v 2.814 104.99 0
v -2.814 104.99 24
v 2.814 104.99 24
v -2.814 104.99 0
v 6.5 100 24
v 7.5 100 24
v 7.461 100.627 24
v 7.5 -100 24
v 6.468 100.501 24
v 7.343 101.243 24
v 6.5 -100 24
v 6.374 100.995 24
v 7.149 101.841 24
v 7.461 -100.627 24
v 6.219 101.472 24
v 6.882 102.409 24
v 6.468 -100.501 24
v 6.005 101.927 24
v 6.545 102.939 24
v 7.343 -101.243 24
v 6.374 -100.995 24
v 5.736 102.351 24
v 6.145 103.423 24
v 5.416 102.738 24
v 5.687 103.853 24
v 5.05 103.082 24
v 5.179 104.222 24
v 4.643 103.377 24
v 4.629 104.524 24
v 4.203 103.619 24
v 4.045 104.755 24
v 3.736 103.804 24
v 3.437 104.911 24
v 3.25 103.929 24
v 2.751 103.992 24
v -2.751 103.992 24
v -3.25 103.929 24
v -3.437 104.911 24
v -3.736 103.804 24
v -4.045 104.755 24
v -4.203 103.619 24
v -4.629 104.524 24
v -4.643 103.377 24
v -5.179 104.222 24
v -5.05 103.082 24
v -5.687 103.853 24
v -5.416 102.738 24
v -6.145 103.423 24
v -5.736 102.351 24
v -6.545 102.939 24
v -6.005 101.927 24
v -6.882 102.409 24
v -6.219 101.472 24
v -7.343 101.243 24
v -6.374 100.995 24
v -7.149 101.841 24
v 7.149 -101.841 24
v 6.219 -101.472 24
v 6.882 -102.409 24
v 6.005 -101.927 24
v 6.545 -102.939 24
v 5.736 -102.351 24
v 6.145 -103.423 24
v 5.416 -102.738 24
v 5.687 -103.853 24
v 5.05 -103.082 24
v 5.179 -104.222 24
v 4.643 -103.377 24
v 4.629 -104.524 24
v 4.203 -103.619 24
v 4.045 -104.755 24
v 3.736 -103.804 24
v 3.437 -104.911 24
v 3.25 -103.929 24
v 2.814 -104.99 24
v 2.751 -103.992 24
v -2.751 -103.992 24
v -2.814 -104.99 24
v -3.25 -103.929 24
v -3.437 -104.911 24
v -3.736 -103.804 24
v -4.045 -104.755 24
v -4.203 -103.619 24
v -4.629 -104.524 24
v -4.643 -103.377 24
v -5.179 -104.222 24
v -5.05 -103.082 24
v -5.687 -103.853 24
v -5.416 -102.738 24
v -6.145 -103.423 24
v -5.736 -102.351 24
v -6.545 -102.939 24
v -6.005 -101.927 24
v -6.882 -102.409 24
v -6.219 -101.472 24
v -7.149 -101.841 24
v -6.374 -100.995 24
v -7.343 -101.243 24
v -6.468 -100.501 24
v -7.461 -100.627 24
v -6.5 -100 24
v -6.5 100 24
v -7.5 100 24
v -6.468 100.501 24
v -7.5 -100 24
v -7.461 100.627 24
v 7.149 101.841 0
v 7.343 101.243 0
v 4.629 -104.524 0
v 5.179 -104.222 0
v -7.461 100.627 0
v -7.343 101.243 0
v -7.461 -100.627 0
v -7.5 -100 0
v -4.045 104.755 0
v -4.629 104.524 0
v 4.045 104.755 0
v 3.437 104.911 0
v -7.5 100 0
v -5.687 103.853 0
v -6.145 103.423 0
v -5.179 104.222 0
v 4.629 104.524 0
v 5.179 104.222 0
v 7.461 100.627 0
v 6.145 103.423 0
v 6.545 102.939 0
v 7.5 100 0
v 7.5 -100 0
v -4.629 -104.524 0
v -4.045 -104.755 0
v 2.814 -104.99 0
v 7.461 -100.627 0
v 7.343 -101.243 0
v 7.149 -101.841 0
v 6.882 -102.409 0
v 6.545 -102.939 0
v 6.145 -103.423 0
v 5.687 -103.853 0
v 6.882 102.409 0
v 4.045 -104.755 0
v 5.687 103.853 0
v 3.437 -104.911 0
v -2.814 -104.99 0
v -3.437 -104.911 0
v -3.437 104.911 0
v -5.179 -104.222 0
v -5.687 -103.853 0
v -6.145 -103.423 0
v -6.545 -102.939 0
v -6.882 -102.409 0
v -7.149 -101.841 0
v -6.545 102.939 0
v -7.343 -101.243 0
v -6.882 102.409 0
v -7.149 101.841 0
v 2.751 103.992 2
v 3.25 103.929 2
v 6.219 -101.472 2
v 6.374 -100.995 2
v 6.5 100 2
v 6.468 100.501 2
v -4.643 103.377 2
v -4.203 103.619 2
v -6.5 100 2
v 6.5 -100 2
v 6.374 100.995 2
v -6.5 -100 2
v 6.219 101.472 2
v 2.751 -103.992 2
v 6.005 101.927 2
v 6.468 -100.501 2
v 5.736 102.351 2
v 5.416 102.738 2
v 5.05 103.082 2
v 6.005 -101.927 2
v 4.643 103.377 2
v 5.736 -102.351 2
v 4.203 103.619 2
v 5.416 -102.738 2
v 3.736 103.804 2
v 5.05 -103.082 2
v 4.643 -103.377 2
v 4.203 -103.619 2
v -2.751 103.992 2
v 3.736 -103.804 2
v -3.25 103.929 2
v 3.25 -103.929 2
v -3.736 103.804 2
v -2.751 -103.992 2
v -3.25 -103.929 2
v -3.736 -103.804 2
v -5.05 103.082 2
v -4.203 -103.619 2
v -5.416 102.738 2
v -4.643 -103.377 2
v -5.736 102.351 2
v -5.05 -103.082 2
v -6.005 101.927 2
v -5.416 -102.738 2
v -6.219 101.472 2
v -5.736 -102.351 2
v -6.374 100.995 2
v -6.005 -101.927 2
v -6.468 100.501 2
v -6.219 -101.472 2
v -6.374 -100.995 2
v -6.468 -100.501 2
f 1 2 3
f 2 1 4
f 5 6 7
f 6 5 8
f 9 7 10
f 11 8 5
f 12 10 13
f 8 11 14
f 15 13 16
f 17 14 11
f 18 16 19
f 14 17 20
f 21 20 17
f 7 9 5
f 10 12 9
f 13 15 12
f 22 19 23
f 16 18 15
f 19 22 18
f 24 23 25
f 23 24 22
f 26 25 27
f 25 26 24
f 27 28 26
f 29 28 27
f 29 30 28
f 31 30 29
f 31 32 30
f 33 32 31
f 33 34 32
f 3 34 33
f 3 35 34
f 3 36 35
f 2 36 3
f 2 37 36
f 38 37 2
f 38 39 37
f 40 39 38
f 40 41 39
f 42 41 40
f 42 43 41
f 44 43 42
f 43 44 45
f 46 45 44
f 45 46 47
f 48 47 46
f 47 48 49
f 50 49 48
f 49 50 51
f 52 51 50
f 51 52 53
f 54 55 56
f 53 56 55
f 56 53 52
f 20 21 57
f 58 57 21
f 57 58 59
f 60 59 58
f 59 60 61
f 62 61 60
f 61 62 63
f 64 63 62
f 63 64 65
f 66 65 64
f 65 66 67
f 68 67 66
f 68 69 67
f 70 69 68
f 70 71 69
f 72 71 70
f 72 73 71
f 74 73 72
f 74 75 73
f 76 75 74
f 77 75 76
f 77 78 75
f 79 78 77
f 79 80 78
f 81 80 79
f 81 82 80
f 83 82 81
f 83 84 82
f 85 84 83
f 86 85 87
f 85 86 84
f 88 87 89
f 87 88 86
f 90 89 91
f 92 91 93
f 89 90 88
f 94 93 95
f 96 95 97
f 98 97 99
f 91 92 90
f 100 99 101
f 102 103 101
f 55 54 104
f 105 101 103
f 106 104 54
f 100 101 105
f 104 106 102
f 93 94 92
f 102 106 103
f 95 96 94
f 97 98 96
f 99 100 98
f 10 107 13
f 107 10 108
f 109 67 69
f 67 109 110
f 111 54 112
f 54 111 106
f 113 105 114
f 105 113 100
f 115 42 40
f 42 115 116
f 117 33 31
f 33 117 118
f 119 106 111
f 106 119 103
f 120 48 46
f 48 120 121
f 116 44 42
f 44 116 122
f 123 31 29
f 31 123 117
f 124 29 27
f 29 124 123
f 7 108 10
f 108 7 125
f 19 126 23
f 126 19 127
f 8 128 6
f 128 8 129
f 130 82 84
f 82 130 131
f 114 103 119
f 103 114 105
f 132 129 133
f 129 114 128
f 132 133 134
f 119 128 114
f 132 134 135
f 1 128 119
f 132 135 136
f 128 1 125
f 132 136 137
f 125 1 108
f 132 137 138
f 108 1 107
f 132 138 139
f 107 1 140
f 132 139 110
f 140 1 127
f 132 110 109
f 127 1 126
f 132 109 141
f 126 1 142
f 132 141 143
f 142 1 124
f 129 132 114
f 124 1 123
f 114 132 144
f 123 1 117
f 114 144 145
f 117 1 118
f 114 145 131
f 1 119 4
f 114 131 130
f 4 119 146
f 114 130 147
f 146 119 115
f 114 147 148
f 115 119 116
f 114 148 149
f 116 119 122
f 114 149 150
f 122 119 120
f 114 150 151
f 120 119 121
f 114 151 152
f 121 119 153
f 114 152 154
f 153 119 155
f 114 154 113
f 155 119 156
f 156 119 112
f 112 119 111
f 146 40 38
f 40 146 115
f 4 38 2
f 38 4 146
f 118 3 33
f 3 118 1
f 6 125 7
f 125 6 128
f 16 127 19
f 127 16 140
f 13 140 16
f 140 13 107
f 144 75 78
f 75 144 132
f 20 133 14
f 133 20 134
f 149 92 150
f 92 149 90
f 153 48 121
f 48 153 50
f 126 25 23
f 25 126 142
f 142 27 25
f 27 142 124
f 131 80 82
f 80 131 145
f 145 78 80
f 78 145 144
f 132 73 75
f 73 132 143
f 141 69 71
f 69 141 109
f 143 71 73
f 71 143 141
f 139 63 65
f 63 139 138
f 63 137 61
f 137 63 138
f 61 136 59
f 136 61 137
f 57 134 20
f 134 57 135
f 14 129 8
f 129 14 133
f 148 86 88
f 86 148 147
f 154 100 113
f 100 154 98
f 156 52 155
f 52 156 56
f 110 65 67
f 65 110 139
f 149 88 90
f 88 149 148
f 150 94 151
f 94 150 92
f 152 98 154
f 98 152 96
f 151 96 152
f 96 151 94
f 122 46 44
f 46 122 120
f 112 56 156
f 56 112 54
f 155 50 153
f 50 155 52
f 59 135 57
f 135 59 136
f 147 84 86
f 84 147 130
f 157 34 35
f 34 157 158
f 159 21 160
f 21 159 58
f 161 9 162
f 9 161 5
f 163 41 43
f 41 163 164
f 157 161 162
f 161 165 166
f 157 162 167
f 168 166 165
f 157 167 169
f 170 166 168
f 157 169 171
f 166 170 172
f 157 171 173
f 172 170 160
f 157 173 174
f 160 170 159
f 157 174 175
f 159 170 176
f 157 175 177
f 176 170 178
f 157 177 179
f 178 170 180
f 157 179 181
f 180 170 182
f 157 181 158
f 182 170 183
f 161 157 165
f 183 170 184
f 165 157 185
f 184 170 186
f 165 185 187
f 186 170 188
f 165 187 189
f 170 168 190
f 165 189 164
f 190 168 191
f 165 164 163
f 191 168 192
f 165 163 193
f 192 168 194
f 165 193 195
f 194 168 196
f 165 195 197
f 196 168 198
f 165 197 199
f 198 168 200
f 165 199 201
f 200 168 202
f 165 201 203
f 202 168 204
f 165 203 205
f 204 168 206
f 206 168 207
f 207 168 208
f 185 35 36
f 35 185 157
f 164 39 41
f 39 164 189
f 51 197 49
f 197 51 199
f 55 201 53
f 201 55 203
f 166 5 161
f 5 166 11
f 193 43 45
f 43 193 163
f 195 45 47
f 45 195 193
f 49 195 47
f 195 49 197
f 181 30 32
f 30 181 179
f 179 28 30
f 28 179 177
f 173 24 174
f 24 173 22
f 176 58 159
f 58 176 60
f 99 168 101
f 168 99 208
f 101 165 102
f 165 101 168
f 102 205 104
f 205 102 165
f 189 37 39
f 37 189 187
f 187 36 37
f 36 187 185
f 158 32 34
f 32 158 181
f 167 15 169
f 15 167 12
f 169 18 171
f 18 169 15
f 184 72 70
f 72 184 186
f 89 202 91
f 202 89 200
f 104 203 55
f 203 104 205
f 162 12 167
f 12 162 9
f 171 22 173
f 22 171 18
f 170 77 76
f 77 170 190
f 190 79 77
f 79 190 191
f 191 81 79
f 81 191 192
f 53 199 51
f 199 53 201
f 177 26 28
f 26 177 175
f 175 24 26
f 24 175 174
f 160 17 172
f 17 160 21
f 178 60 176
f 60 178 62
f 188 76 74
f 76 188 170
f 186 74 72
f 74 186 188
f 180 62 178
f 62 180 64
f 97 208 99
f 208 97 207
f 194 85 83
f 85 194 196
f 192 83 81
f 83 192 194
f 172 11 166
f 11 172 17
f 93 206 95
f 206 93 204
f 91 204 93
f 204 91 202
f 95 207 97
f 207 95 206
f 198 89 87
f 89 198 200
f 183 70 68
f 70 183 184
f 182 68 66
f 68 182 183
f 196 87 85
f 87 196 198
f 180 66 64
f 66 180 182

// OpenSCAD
$fn = 50;


difference() {
	union() {
		hull() {
			translate(v = [-2.5000000000, 100.0000000000, 0]) {
				cylinder(h = 24, r = 5);
			}
			translate(v = [2.5000000000, 100.0000000000, 0]) {
				cylinder(h = 24, r = 5);
			}
			translate(v = [-2.5000000000, -100.0000000000, 0]) {
				cylinder(h = 24, r = 5);
			}
			translate(v = [2.5000000000, -100.0000000000, 0]) {
				cylinder(h = 24, r = 5);
			}
		}
	}
	union() {
		translate(v = [0, 0, 2]) {
			hull() {
				translate(v = [-2.5000000000, 100.0000000000, 0]) {
					cylinder(h = 22, r = 4);
				}
				translate(v = [2.5000000000, 100.0000000000, 0]) {
					cylinder(h = 22, r = 4);
				}
				translate(v = [-2.5000000000, -100.0000000000, 0]) {
					cylinder(h = 22, r = 4);
				}
				translate(v = [2.5000000000, -100.0000000000, 0]) {
					cylinder(h = 22, r = 4);
				}
			}
		}
	}
}
